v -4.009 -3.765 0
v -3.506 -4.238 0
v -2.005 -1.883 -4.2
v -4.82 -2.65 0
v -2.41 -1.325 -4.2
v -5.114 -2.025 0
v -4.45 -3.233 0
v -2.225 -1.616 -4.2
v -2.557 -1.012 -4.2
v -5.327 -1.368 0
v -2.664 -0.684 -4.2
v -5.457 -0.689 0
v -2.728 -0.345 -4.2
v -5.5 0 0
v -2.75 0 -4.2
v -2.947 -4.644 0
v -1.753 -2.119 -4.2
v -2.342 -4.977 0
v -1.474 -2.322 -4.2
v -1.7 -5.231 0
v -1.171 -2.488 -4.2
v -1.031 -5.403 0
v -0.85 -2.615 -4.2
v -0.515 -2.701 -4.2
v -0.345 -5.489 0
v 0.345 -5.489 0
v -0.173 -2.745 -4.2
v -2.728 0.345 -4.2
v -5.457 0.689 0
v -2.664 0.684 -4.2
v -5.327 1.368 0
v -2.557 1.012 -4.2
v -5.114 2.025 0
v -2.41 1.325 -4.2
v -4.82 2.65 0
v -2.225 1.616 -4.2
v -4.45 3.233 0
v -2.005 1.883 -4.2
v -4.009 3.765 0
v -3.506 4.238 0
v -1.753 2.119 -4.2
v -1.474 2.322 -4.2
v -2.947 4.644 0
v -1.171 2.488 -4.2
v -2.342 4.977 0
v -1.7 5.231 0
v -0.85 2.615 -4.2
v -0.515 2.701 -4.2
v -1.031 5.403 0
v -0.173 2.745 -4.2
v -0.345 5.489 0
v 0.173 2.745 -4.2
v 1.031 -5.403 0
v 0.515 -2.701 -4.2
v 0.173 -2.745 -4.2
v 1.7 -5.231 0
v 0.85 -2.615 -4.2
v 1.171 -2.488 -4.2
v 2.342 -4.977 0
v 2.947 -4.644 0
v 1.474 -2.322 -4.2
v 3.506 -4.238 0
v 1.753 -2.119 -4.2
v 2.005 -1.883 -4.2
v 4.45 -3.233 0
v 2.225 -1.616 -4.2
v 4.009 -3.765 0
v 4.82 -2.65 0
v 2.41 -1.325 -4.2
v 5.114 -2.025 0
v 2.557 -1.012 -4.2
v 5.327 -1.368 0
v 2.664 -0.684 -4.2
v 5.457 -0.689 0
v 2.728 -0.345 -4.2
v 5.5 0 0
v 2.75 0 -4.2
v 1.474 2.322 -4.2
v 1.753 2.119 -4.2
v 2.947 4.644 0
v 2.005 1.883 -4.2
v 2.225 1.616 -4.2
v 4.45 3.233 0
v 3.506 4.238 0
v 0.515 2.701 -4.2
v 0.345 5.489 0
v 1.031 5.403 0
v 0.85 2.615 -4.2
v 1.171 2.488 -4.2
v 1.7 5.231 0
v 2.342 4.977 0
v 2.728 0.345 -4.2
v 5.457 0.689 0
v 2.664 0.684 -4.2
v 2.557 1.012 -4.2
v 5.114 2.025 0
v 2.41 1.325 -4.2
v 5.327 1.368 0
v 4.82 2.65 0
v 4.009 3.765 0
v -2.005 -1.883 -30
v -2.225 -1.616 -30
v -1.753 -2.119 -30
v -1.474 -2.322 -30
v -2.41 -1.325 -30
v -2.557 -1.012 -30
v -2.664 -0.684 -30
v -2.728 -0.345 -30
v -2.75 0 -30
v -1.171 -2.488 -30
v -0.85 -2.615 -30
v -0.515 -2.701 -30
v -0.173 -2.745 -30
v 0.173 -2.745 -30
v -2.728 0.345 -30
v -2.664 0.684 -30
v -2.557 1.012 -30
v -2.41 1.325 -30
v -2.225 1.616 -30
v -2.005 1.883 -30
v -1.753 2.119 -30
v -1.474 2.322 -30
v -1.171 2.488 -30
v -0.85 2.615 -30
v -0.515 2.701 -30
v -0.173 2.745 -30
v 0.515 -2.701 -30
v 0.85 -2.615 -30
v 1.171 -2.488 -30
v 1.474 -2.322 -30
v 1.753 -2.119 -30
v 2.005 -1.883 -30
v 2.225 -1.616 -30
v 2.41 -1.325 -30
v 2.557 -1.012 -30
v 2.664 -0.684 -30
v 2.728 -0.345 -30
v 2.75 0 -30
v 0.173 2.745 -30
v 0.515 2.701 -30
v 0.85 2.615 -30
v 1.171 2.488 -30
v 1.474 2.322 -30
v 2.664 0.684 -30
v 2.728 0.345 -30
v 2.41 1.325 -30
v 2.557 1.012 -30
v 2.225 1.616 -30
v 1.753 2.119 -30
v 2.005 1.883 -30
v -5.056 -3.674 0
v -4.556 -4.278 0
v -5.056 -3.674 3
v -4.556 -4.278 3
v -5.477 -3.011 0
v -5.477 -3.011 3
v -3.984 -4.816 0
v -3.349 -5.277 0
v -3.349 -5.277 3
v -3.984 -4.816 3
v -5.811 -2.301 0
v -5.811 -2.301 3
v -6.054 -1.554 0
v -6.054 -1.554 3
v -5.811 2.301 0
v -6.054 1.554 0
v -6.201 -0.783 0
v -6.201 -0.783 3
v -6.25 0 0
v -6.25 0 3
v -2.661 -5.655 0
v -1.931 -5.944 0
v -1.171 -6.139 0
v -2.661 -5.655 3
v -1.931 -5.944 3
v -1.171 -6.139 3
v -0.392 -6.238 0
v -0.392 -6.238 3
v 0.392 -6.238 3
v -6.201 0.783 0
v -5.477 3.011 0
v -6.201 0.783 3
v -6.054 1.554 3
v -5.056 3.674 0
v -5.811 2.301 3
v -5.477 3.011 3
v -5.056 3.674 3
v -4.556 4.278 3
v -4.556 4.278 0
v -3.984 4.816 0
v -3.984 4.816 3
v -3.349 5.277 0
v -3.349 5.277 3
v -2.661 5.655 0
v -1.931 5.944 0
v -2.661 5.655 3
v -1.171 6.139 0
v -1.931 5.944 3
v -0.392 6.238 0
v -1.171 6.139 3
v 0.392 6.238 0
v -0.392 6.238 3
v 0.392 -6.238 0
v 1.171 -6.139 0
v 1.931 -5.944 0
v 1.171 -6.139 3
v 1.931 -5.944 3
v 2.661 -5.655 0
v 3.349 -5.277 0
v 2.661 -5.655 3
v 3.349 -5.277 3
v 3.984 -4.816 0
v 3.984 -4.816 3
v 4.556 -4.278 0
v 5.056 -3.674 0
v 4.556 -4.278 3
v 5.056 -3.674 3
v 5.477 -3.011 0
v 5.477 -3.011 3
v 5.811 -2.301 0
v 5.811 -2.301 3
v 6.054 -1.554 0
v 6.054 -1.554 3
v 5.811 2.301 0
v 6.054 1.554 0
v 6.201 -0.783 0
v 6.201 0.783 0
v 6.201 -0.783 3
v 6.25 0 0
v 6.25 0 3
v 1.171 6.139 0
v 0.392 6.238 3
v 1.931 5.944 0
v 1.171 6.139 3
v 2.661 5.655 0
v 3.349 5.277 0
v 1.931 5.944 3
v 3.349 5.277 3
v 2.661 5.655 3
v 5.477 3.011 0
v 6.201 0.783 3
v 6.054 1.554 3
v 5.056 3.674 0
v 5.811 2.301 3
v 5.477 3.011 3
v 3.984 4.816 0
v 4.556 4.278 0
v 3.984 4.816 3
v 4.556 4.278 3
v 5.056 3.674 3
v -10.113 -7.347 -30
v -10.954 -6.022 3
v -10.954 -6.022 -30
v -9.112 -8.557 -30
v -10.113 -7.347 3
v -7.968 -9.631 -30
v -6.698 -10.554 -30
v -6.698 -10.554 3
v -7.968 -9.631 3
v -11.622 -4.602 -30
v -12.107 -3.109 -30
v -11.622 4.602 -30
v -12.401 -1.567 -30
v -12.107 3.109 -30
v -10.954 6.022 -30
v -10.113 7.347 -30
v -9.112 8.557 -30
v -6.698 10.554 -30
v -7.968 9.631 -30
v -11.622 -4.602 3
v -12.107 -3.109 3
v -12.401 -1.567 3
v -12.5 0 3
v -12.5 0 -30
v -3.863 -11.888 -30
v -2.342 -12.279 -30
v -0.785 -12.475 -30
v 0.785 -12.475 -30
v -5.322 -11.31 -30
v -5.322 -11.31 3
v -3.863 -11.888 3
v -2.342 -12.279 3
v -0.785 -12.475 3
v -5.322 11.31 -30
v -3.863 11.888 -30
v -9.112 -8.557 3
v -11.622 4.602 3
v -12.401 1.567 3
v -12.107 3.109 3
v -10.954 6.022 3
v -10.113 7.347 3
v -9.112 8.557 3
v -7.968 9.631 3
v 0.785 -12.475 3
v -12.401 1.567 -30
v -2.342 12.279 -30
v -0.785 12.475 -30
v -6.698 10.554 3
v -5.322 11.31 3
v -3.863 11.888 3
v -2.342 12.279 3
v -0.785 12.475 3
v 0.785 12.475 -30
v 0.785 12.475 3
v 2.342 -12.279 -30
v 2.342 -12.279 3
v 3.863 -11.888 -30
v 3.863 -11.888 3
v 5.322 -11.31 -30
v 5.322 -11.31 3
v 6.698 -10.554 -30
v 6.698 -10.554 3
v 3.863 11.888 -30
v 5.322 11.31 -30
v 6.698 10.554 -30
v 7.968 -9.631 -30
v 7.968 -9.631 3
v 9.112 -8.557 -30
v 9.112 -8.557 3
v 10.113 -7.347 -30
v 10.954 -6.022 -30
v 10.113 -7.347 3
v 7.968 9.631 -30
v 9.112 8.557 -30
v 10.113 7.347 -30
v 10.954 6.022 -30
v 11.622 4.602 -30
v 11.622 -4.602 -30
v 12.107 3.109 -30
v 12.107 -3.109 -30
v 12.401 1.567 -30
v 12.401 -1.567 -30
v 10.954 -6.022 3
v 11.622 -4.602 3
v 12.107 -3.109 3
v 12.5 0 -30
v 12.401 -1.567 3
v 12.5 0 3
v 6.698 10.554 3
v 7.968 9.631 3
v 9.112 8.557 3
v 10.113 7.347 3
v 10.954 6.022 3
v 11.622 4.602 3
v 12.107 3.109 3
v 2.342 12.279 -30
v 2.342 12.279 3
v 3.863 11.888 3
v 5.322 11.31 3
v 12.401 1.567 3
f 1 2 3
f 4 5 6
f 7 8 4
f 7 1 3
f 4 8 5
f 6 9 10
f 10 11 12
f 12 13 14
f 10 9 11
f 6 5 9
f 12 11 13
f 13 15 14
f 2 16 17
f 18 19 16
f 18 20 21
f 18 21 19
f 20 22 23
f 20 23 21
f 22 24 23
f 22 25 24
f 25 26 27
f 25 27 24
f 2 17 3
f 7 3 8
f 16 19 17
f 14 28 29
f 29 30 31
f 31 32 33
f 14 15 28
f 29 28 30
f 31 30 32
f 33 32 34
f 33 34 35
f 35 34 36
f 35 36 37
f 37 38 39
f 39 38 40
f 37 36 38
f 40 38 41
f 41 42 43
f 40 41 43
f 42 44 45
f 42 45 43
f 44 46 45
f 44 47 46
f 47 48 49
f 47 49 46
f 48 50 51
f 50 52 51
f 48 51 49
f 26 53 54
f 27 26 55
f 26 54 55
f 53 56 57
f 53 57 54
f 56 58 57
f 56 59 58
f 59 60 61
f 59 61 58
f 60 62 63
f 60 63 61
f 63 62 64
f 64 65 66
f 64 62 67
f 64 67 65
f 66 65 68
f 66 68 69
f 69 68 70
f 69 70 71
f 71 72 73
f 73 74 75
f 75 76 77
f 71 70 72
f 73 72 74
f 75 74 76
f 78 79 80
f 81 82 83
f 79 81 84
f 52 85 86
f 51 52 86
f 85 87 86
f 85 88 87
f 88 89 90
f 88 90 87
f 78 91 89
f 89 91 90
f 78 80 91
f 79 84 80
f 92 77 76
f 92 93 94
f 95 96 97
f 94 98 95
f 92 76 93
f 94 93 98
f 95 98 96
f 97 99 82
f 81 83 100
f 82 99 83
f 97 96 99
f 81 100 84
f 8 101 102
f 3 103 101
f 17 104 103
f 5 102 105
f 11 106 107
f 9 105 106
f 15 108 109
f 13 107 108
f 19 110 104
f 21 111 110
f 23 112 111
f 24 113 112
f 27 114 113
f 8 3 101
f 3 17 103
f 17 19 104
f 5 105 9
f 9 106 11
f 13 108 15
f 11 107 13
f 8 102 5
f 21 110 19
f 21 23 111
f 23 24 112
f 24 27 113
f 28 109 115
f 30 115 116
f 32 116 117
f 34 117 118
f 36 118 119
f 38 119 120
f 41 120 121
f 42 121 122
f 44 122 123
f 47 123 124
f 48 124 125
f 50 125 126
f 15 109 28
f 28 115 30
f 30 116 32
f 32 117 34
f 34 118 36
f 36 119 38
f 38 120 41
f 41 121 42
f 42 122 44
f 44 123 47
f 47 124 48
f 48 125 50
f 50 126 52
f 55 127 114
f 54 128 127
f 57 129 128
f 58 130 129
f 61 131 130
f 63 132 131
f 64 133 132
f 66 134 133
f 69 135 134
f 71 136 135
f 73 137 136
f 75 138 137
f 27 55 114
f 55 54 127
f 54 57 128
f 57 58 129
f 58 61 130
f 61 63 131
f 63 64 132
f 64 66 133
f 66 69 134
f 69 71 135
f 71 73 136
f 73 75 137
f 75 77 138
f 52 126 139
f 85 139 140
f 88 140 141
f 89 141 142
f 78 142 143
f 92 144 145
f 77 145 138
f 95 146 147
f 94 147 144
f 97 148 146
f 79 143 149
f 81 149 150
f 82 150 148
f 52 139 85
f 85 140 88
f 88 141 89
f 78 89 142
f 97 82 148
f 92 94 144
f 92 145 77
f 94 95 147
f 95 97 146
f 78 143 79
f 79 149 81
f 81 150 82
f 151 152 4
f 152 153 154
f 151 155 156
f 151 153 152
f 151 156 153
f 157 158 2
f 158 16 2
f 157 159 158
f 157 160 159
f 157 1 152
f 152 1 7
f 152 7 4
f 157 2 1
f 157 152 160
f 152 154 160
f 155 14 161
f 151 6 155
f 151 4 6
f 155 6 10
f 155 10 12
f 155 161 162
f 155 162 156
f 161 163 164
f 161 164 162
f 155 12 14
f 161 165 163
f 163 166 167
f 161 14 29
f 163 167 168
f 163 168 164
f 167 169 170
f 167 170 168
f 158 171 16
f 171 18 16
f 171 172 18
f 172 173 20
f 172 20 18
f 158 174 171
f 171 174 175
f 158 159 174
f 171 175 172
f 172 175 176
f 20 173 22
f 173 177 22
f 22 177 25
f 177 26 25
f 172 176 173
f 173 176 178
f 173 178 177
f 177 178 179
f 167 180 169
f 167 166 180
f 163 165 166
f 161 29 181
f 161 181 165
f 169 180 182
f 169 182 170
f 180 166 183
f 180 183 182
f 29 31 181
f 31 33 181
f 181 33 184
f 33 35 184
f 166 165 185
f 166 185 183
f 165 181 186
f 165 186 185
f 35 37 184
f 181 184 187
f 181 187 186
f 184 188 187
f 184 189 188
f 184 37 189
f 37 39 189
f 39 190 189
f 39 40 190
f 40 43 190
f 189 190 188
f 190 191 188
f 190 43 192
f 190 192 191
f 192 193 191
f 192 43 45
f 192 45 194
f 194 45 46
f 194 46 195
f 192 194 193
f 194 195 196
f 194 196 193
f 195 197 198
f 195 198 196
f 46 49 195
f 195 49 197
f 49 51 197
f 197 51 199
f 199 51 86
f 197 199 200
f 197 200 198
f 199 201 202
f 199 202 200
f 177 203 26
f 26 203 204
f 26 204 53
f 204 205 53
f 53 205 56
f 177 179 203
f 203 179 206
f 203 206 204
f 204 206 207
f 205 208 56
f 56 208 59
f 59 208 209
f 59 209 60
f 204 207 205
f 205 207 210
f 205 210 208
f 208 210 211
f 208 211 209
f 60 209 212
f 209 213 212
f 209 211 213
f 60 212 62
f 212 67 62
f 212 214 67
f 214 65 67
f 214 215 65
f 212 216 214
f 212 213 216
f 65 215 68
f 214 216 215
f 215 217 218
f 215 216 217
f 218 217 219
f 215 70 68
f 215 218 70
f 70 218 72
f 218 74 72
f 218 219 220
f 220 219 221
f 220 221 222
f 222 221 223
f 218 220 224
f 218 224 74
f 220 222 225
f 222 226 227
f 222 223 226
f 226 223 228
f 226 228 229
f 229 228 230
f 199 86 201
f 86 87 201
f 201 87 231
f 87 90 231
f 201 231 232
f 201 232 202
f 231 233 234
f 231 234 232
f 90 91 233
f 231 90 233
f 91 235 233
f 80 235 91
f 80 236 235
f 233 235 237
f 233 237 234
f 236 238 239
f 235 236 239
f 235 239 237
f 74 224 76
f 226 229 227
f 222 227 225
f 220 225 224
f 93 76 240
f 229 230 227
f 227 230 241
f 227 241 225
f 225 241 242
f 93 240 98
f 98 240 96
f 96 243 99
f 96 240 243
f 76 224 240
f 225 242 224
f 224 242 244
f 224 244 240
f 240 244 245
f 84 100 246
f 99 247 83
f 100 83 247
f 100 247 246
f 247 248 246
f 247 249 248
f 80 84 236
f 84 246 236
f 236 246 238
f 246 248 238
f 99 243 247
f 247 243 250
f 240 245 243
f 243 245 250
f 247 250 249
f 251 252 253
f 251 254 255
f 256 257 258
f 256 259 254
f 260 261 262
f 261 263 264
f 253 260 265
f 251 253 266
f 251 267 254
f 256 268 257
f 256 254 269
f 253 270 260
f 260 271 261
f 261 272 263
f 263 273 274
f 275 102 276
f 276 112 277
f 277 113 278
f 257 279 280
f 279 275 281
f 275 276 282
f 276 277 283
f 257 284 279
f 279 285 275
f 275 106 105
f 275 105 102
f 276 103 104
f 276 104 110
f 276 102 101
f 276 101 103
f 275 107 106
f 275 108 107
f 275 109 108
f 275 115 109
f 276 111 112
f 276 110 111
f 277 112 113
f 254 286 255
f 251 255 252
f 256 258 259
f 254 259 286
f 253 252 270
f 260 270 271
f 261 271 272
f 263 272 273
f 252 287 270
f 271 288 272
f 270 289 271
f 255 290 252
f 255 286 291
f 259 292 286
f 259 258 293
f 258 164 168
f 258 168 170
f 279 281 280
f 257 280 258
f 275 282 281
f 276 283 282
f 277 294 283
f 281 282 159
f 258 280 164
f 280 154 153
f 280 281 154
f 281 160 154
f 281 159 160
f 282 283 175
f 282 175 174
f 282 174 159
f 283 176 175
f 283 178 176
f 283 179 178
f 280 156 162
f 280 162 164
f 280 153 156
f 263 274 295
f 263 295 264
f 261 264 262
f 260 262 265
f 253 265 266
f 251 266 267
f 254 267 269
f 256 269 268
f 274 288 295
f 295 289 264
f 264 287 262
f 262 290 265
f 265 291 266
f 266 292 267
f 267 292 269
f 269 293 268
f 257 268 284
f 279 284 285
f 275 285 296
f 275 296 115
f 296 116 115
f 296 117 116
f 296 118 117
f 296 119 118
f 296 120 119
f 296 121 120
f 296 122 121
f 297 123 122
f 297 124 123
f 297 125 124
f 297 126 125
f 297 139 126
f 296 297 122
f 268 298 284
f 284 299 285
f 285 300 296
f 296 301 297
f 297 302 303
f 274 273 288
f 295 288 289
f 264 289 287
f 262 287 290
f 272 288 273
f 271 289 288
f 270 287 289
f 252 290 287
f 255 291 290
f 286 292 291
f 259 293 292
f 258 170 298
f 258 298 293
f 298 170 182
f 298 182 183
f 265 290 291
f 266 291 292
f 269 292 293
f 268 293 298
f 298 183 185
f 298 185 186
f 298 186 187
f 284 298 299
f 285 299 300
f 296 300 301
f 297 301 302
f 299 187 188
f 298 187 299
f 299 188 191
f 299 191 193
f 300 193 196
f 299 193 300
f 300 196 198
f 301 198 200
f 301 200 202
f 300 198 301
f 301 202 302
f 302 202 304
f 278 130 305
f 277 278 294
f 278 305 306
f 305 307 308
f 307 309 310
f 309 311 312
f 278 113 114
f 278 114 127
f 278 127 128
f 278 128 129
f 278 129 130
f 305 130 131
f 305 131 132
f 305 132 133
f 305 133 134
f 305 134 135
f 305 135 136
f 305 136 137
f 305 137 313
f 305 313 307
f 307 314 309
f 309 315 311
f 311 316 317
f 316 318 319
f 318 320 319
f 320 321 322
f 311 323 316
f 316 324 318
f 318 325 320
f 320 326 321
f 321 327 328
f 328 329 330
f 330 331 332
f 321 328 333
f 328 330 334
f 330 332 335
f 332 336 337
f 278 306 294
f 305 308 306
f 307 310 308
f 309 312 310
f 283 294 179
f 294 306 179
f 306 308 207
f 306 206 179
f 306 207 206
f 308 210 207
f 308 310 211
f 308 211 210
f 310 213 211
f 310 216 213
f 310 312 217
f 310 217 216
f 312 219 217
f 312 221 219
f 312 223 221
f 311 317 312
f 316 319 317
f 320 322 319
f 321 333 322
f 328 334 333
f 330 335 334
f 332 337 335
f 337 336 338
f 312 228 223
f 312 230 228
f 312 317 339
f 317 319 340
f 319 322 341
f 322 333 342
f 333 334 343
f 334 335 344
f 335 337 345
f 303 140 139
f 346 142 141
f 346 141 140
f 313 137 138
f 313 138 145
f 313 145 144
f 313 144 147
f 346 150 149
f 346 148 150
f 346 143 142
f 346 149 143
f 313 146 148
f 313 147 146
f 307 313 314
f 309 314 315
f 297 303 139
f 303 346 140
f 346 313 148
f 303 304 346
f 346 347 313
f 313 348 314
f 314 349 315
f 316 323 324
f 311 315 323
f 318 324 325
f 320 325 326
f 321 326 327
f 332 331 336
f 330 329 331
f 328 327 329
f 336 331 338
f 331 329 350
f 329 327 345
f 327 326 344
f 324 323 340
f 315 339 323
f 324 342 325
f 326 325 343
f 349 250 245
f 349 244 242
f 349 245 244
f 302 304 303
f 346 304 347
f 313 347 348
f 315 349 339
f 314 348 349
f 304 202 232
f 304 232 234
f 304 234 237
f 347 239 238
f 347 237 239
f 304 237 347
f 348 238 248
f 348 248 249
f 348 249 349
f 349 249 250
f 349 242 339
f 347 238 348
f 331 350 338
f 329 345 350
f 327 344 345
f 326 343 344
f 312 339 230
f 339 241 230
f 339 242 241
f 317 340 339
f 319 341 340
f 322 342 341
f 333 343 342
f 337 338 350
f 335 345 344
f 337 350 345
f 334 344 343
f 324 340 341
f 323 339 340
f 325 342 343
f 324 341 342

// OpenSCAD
$fn = 50;


difference() {
	union() {
		translate(v = [0, 0, -30.0000000000]) {
			cylinder(h = 33, r = 12.5000000000);
		}
	}
	union() {
		translate(v = [0, 0, 0]) {
			rotate(a = [0, 0, 0]) {
				difference() {
					union() {
						translate(v = [0, 0, -33.0000000000]) {
							cylinder(h = 33, r = 2.2500000000);
						}
						translate(v = [0, 0, -4.2000000000]) {
							cylinder(h = 4.2000000000, r1 = 2.7500000000, r2 = 5.5000000000);
						}
						translate(v = [0, 0, -33.0000000000]) {
							cylinder(h = 33, r = 2.7500000000);
						}
						translate(v = [0, 0, -33.0000000000]) {
							cylinder(h = 33, r = 2.2500000000);
						}
					}
					union();
				}
			}
		}
		#cylinder(h = 3, r = 6.2500000000);
	}
}
